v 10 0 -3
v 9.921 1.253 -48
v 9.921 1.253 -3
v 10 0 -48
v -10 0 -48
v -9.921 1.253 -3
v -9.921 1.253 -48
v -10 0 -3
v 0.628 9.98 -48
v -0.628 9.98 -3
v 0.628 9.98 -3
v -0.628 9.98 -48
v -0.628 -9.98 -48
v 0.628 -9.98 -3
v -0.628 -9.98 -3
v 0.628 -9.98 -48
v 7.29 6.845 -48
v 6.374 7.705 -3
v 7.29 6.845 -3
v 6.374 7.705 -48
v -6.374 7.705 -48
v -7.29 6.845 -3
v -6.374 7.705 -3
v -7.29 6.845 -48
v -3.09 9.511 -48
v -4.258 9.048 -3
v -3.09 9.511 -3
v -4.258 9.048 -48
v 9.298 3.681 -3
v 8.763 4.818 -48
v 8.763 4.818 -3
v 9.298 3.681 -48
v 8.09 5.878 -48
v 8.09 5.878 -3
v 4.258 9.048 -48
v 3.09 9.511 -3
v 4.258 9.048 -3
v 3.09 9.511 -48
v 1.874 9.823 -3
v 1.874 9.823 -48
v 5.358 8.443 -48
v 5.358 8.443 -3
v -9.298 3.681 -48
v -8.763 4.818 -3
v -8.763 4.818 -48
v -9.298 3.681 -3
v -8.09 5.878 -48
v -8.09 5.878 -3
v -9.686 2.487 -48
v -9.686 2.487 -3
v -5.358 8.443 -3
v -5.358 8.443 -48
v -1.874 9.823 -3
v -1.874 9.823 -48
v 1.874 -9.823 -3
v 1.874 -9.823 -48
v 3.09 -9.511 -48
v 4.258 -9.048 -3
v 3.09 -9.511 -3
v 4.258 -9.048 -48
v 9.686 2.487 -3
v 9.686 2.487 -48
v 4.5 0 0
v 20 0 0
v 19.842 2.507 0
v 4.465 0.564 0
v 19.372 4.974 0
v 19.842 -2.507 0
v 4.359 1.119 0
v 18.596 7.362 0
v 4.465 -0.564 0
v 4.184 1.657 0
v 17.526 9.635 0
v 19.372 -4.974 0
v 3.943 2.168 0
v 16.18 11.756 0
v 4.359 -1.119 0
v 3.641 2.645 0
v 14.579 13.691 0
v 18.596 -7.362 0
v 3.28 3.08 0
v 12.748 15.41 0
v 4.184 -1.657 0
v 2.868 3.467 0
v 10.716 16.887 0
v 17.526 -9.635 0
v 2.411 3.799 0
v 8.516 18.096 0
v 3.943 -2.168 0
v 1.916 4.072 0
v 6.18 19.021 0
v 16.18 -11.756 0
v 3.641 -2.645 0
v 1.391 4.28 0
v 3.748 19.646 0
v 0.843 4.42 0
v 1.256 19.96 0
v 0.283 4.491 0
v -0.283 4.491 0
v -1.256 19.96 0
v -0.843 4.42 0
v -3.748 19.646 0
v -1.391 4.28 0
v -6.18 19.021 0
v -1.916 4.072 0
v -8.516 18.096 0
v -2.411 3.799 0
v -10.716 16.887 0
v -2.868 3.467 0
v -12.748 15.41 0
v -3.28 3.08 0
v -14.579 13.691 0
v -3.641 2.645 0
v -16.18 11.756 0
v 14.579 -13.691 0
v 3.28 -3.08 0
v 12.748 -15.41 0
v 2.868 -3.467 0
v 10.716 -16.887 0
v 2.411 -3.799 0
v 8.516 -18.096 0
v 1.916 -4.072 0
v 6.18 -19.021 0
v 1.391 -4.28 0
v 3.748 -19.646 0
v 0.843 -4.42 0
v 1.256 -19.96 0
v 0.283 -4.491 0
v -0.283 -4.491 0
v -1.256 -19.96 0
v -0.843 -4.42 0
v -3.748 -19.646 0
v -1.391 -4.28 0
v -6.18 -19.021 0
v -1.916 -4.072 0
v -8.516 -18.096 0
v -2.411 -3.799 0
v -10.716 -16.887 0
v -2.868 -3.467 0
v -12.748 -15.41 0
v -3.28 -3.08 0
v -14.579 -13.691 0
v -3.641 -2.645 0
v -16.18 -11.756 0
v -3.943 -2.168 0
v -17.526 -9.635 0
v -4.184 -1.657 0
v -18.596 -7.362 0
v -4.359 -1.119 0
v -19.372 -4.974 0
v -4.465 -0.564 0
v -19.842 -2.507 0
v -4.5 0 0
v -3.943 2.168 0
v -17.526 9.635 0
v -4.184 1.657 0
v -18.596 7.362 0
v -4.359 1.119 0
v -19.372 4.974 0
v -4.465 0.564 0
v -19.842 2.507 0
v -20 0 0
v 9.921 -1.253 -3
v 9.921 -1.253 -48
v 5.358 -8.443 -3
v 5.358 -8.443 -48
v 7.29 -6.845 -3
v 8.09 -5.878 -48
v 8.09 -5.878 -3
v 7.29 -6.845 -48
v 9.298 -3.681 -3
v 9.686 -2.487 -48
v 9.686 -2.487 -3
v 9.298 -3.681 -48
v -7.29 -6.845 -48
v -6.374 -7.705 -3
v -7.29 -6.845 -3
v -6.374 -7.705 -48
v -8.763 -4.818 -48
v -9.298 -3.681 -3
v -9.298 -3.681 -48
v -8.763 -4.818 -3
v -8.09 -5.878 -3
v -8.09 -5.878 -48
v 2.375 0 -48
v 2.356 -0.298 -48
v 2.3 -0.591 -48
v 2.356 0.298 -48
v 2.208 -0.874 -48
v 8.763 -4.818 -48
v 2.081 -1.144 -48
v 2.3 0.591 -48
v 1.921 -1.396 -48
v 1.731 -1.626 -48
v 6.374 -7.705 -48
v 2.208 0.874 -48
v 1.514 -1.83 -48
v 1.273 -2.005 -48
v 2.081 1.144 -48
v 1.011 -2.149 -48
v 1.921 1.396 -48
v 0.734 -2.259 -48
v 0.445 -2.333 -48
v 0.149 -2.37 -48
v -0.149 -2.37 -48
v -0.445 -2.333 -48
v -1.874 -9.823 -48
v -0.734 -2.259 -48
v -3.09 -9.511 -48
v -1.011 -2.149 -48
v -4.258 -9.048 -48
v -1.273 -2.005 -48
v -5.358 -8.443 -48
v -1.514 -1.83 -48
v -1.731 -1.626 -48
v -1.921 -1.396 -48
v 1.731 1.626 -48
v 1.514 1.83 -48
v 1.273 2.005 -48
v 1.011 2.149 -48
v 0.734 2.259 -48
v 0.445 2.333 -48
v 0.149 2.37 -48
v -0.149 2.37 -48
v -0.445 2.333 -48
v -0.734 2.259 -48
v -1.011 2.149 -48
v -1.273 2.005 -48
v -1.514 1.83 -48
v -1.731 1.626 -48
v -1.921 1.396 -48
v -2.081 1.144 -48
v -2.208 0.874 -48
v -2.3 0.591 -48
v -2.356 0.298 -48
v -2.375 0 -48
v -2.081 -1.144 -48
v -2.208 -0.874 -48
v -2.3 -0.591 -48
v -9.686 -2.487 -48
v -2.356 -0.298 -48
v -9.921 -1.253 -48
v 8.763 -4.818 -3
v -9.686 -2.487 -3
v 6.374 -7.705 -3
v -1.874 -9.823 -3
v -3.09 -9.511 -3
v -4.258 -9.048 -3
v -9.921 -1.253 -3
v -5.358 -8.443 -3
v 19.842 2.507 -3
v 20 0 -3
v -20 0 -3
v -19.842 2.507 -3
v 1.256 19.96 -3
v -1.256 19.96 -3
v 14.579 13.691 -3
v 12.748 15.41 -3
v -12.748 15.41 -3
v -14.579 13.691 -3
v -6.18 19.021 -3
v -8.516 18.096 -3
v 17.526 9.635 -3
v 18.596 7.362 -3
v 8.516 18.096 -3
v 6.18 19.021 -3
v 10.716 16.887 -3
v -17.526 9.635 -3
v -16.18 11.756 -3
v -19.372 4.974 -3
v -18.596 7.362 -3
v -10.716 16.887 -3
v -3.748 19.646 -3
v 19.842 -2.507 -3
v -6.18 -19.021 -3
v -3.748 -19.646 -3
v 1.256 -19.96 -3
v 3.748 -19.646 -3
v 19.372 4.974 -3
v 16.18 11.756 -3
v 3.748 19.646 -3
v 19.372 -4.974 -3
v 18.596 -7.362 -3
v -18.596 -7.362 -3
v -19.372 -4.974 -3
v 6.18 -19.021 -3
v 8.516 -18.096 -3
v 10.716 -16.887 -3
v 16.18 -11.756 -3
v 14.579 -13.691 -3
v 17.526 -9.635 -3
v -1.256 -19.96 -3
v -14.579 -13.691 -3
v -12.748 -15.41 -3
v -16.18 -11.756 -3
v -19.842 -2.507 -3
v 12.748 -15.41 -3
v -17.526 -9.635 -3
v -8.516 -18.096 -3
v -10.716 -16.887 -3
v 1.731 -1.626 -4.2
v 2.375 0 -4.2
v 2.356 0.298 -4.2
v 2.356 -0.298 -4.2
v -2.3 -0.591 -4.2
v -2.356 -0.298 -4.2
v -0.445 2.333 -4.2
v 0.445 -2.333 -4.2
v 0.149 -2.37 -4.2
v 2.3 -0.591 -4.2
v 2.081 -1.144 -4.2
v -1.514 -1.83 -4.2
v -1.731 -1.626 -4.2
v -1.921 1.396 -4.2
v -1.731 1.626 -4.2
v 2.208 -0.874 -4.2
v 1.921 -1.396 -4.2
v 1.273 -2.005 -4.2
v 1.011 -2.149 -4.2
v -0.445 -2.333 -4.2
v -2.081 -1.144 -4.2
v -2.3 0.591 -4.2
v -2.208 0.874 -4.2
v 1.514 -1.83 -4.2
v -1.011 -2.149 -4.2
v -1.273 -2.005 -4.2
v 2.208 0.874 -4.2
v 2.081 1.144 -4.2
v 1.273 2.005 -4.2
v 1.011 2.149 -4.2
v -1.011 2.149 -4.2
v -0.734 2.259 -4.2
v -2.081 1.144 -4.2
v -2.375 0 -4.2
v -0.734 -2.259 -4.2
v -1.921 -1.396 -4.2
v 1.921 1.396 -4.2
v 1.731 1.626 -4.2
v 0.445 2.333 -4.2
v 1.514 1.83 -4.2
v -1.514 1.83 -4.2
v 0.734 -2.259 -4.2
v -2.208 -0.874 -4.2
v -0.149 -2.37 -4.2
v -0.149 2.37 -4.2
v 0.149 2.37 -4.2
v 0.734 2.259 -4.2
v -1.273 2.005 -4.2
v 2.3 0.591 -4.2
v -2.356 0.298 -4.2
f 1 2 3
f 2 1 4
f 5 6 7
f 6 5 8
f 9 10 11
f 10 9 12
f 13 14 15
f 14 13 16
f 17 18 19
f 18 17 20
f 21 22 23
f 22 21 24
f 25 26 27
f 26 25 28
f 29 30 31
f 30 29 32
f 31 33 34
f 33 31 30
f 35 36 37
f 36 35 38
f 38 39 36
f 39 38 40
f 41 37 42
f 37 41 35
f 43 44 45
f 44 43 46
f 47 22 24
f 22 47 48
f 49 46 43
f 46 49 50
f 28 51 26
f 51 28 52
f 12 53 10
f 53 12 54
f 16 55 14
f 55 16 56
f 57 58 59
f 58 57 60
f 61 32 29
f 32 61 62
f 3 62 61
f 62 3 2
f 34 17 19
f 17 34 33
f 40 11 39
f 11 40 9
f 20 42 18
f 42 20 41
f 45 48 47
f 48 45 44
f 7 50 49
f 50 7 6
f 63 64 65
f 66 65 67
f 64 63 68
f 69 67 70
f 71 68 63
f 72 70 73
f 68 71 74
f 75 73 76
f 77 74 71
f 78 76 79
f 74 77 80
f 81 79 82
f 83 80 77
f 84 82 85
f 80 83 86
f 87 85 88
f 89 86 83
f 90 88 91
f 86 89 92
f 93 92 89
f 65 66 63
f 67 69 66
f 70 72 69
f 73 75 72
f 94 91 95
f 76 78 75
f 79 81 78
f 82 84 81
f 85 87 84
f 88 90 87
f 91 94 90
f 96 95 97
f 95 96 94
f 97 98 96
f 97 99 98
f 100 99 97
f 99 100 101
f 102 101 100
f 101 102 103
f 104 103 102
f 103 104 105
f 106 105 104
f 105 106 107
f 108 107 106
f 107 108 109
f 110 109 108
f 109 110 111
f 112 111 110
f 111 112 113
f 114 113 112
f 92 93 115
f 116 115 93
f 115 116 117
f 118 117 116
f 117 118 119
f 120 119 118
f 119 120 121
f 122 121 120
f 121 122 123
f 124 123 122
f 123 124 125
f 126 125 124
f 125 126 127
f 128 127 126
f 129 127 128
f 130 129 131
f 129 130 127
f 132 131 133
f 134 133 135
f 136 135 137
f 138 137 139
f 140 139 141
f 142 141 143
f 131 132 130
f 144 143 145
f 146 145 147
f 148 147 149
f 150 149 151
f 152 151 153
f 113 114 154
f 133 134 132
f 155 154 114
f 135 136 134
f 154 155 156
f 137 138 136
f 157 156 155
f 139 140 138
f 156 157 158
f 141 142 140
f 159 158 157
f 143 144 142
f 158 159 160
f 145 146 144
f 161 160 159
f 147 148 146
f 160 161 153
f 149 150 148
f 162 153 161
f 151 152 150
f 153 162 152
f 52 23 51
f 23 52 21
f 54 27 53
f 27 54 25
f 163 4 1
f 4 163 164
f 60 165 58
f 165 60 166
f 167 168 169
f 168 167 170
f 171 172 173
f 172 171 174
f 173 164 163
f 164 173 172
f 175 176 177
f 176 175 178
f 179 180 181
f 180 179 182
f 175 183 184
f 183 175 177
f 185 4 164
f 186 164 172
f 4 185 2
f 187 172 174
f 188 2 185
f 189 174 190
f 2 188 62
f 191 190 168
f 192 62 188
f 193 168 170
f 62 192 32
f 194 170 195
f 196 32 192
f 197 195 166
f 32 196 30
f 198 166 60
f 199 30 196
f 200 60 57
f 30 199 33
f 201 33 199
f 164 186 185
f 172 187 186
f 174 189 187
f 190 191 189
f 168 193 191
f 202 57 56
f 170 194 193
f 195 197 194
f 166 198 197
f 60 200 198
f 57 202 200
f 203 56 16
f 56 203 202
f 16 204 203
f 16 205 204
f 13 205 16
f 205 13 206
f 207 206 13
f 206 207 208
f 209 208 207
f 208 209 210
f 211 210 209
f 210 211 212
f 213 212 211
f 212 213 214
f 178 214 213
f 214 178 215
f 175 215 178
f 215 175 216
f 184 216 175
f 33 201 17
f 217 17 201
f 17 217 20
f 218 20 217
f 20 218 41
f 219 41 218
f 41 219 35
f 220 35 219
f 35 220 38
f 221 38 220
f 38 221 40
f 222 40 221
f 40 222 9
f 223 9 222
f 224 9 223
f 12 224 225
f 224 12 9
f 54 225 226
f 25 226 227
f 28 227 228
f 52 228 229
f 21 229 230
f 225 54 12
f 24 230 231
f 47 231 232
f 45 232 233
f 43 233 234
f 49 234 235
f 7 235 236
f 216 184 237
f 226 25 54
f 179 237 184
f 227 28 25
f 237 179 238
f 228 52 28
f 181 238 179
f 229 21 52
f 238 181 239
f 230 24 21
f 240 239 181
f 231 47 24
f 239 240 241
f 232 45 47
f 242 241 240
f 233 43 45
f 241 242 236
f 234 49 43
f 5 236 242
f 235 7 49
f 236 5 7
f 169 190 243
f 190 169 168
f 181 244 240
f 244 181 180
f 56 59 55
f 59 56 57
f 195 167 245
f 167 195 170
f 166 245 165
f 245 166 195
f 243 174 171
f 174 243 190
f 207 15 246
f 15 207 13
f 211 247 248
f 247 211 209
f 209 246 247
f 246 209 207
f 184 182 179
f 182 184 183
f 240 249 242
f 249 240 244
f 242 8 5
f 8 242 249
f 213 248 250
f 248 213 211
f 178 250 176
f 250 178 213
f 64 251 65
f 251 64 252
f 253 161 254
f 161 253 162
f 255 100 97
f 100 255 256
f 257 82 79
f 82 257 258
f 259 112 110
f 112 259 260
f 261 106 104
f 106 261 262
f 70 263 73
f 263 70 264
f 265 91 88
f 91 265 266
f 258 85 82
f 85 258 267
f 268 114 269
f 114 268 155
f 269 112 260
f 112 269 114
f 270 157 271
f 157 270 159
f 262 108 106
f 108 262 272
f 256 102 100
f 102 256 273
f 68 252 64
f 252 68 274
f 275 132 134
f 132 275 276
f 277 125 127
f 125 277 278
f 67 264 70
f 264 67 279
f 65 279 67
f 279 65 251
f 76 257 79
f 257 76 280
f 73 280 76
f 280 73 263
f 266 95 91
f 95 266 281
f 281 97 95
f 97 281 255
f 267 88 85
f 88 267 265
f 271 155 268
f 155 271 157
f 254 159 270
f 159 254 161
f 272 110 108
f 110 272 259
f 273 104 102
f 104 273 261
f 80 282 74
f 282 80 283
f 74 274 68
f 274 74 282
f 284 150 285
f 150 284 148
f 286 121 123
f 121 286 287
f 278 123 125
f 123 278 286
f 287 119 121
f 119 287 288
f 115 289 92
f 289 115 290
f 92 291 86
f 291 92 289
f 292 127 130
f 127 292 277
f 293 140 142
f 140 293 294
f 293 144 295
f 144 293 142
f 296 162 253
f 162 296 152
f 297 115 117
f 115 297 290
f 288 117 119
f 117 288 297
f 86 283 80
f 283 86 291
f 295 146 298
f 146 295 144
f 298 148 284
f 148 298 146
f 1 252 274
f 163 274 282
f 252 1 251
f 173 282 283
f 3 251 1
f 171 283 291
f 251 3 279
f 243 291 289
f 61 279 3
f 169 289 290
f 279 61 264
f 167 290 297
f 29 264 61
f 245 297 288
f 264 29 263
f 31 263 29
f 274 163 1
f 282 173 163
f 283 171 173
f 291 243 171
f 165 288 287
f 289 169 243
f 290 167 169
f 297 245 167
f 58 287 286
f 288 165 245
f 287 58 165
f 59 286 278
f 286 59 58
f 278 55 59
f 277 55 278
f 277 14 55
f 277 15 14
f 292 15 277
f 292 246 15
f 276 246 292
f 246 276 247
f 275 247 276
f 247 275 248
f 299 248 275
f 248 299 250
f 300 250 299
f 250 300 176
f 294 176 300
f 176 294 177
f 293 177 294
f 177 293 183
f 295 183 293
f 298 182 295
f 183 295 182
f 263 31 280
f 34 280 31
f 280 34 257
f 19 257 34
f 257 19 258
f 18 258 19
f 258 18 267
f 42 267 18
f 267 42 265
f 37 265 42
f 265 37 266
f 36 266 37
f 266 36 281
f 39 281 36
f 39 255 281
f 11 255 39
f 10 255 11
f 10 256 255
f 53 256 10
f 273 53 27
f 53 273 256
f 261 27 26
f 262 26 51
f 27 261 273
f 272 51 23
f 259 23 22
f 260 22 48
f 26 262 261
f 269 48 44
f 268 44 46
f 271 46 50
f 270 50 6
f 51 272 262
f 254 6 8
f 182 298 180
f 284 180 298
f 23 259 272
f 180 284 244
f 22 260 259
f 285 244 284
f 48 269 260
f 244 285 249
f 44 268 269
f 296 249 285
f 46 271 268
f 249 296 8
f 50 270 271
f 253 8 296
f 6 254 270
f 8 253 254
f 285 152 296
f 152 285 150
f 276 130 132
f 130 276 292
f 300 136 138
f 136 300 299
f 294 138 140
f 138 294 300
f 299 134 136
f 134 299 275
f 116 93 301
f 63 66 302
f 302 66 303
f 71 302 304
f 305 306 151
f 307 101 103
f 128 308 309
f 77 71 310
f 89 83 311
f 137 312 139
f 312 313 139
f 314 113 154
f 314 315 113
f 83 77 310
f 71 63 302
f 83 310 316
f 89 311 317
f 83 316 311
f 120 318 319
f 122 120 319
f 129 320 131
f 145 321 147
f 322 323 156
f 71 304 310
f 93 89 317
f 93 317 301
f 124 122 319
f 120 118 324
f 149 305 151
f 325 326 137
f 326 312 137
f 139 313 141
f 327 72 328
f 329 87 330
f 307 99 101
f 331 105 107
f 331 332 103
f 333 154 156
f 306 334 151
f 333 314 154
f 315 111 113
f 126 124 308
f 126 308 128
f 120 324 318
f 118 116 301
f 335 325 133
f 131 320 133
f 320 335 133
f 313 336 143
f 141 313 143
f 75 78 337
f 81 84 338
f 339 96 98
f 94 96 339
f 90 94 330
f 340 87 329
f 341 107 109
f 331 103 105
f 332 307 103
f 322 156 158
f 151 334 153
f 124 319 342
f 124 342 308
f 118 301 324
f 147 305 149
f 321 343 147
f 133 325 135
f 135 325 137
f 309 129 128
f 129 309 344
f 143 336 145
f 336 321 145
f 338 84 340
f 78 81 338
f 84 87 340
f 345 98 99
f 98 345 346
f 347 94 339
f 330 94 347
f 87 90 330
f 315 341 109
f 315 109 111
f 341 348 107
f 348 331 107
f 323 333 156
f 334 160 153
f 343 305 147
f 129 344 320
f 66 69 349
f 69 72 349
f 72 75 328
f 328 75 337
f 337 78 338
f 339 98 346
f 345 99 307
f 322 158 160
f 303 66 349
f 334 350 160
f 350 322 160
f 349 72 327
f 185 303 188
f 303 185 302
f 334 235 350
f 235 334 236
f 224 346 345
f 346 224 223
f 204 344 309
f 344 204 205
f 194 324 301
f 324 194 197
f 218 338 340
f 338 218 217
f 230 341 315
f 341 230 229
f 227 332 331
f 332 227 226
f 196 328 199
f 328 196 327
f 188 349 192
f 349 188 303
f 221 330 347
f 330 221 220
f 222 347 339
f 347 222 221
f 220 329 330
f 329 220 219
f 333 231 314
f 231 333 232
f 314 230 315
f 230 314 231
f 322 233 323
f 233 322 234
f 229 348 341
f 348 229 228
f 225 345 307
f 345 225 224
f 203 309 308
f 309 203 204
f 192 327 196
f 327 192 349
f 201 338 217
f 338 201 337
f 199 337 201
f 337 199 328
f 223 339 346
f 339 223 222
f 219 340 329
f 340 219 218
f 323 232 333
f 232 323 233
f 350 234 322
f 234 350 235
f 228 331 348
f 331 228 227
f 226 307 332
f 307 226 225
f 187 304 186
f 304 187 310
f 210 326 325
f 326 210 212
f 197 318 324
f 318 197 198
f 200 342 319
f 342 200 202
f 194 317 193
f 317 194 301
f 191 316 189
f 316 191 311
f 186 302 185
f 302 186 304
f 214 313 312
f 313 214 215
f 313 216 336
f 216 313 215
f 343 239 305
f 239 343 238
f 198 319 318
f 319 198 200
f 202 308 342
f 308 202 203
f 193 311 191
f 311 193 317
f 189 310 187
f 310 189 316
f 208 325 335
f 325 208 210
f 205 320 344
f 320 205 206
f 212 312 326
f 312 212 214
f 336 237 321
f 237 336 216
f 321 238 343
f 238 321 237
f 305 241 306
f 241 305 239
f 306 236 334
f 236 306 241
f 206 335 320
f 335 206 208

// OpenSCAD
$fn = 50;


difference() {
	union() {
		translate(v = [0, 0, -48.0000000000]) {
			cylinder(h = 48, r = 10.0000000000);
		}
		translate(v = [0, 0, -3.0000000000]) {
			cylinder(h = 3, r = 20.0000000000);
		}
	}
	union() {
		translate(v = [0, 0, 0]) {
			rotate(a = [0, 0, 0]) {
				difference() {
					union() {
						#translate(v = [0, 0, -48.0000000000]) {
							cylinder(h = 48, r = 2.2500000000);
						}
						#translate(v = [0, 0, -4.2000000000]) {
							cylinder(h = 4.2000000000, r1 = 2.3750000000, r2 = 4.5000000000);
						}
						#translate(v = [0, 0, -48.0000000000]) {
							cylinder(h = 48, r = 2.3750000000);
						}
						#translate(v = [0, 0, -48.0000000000]) {
							cylinder(h = 48, r = 2.2500000000);
						}
					}
					union();
				}
			}
		}
	}
}
